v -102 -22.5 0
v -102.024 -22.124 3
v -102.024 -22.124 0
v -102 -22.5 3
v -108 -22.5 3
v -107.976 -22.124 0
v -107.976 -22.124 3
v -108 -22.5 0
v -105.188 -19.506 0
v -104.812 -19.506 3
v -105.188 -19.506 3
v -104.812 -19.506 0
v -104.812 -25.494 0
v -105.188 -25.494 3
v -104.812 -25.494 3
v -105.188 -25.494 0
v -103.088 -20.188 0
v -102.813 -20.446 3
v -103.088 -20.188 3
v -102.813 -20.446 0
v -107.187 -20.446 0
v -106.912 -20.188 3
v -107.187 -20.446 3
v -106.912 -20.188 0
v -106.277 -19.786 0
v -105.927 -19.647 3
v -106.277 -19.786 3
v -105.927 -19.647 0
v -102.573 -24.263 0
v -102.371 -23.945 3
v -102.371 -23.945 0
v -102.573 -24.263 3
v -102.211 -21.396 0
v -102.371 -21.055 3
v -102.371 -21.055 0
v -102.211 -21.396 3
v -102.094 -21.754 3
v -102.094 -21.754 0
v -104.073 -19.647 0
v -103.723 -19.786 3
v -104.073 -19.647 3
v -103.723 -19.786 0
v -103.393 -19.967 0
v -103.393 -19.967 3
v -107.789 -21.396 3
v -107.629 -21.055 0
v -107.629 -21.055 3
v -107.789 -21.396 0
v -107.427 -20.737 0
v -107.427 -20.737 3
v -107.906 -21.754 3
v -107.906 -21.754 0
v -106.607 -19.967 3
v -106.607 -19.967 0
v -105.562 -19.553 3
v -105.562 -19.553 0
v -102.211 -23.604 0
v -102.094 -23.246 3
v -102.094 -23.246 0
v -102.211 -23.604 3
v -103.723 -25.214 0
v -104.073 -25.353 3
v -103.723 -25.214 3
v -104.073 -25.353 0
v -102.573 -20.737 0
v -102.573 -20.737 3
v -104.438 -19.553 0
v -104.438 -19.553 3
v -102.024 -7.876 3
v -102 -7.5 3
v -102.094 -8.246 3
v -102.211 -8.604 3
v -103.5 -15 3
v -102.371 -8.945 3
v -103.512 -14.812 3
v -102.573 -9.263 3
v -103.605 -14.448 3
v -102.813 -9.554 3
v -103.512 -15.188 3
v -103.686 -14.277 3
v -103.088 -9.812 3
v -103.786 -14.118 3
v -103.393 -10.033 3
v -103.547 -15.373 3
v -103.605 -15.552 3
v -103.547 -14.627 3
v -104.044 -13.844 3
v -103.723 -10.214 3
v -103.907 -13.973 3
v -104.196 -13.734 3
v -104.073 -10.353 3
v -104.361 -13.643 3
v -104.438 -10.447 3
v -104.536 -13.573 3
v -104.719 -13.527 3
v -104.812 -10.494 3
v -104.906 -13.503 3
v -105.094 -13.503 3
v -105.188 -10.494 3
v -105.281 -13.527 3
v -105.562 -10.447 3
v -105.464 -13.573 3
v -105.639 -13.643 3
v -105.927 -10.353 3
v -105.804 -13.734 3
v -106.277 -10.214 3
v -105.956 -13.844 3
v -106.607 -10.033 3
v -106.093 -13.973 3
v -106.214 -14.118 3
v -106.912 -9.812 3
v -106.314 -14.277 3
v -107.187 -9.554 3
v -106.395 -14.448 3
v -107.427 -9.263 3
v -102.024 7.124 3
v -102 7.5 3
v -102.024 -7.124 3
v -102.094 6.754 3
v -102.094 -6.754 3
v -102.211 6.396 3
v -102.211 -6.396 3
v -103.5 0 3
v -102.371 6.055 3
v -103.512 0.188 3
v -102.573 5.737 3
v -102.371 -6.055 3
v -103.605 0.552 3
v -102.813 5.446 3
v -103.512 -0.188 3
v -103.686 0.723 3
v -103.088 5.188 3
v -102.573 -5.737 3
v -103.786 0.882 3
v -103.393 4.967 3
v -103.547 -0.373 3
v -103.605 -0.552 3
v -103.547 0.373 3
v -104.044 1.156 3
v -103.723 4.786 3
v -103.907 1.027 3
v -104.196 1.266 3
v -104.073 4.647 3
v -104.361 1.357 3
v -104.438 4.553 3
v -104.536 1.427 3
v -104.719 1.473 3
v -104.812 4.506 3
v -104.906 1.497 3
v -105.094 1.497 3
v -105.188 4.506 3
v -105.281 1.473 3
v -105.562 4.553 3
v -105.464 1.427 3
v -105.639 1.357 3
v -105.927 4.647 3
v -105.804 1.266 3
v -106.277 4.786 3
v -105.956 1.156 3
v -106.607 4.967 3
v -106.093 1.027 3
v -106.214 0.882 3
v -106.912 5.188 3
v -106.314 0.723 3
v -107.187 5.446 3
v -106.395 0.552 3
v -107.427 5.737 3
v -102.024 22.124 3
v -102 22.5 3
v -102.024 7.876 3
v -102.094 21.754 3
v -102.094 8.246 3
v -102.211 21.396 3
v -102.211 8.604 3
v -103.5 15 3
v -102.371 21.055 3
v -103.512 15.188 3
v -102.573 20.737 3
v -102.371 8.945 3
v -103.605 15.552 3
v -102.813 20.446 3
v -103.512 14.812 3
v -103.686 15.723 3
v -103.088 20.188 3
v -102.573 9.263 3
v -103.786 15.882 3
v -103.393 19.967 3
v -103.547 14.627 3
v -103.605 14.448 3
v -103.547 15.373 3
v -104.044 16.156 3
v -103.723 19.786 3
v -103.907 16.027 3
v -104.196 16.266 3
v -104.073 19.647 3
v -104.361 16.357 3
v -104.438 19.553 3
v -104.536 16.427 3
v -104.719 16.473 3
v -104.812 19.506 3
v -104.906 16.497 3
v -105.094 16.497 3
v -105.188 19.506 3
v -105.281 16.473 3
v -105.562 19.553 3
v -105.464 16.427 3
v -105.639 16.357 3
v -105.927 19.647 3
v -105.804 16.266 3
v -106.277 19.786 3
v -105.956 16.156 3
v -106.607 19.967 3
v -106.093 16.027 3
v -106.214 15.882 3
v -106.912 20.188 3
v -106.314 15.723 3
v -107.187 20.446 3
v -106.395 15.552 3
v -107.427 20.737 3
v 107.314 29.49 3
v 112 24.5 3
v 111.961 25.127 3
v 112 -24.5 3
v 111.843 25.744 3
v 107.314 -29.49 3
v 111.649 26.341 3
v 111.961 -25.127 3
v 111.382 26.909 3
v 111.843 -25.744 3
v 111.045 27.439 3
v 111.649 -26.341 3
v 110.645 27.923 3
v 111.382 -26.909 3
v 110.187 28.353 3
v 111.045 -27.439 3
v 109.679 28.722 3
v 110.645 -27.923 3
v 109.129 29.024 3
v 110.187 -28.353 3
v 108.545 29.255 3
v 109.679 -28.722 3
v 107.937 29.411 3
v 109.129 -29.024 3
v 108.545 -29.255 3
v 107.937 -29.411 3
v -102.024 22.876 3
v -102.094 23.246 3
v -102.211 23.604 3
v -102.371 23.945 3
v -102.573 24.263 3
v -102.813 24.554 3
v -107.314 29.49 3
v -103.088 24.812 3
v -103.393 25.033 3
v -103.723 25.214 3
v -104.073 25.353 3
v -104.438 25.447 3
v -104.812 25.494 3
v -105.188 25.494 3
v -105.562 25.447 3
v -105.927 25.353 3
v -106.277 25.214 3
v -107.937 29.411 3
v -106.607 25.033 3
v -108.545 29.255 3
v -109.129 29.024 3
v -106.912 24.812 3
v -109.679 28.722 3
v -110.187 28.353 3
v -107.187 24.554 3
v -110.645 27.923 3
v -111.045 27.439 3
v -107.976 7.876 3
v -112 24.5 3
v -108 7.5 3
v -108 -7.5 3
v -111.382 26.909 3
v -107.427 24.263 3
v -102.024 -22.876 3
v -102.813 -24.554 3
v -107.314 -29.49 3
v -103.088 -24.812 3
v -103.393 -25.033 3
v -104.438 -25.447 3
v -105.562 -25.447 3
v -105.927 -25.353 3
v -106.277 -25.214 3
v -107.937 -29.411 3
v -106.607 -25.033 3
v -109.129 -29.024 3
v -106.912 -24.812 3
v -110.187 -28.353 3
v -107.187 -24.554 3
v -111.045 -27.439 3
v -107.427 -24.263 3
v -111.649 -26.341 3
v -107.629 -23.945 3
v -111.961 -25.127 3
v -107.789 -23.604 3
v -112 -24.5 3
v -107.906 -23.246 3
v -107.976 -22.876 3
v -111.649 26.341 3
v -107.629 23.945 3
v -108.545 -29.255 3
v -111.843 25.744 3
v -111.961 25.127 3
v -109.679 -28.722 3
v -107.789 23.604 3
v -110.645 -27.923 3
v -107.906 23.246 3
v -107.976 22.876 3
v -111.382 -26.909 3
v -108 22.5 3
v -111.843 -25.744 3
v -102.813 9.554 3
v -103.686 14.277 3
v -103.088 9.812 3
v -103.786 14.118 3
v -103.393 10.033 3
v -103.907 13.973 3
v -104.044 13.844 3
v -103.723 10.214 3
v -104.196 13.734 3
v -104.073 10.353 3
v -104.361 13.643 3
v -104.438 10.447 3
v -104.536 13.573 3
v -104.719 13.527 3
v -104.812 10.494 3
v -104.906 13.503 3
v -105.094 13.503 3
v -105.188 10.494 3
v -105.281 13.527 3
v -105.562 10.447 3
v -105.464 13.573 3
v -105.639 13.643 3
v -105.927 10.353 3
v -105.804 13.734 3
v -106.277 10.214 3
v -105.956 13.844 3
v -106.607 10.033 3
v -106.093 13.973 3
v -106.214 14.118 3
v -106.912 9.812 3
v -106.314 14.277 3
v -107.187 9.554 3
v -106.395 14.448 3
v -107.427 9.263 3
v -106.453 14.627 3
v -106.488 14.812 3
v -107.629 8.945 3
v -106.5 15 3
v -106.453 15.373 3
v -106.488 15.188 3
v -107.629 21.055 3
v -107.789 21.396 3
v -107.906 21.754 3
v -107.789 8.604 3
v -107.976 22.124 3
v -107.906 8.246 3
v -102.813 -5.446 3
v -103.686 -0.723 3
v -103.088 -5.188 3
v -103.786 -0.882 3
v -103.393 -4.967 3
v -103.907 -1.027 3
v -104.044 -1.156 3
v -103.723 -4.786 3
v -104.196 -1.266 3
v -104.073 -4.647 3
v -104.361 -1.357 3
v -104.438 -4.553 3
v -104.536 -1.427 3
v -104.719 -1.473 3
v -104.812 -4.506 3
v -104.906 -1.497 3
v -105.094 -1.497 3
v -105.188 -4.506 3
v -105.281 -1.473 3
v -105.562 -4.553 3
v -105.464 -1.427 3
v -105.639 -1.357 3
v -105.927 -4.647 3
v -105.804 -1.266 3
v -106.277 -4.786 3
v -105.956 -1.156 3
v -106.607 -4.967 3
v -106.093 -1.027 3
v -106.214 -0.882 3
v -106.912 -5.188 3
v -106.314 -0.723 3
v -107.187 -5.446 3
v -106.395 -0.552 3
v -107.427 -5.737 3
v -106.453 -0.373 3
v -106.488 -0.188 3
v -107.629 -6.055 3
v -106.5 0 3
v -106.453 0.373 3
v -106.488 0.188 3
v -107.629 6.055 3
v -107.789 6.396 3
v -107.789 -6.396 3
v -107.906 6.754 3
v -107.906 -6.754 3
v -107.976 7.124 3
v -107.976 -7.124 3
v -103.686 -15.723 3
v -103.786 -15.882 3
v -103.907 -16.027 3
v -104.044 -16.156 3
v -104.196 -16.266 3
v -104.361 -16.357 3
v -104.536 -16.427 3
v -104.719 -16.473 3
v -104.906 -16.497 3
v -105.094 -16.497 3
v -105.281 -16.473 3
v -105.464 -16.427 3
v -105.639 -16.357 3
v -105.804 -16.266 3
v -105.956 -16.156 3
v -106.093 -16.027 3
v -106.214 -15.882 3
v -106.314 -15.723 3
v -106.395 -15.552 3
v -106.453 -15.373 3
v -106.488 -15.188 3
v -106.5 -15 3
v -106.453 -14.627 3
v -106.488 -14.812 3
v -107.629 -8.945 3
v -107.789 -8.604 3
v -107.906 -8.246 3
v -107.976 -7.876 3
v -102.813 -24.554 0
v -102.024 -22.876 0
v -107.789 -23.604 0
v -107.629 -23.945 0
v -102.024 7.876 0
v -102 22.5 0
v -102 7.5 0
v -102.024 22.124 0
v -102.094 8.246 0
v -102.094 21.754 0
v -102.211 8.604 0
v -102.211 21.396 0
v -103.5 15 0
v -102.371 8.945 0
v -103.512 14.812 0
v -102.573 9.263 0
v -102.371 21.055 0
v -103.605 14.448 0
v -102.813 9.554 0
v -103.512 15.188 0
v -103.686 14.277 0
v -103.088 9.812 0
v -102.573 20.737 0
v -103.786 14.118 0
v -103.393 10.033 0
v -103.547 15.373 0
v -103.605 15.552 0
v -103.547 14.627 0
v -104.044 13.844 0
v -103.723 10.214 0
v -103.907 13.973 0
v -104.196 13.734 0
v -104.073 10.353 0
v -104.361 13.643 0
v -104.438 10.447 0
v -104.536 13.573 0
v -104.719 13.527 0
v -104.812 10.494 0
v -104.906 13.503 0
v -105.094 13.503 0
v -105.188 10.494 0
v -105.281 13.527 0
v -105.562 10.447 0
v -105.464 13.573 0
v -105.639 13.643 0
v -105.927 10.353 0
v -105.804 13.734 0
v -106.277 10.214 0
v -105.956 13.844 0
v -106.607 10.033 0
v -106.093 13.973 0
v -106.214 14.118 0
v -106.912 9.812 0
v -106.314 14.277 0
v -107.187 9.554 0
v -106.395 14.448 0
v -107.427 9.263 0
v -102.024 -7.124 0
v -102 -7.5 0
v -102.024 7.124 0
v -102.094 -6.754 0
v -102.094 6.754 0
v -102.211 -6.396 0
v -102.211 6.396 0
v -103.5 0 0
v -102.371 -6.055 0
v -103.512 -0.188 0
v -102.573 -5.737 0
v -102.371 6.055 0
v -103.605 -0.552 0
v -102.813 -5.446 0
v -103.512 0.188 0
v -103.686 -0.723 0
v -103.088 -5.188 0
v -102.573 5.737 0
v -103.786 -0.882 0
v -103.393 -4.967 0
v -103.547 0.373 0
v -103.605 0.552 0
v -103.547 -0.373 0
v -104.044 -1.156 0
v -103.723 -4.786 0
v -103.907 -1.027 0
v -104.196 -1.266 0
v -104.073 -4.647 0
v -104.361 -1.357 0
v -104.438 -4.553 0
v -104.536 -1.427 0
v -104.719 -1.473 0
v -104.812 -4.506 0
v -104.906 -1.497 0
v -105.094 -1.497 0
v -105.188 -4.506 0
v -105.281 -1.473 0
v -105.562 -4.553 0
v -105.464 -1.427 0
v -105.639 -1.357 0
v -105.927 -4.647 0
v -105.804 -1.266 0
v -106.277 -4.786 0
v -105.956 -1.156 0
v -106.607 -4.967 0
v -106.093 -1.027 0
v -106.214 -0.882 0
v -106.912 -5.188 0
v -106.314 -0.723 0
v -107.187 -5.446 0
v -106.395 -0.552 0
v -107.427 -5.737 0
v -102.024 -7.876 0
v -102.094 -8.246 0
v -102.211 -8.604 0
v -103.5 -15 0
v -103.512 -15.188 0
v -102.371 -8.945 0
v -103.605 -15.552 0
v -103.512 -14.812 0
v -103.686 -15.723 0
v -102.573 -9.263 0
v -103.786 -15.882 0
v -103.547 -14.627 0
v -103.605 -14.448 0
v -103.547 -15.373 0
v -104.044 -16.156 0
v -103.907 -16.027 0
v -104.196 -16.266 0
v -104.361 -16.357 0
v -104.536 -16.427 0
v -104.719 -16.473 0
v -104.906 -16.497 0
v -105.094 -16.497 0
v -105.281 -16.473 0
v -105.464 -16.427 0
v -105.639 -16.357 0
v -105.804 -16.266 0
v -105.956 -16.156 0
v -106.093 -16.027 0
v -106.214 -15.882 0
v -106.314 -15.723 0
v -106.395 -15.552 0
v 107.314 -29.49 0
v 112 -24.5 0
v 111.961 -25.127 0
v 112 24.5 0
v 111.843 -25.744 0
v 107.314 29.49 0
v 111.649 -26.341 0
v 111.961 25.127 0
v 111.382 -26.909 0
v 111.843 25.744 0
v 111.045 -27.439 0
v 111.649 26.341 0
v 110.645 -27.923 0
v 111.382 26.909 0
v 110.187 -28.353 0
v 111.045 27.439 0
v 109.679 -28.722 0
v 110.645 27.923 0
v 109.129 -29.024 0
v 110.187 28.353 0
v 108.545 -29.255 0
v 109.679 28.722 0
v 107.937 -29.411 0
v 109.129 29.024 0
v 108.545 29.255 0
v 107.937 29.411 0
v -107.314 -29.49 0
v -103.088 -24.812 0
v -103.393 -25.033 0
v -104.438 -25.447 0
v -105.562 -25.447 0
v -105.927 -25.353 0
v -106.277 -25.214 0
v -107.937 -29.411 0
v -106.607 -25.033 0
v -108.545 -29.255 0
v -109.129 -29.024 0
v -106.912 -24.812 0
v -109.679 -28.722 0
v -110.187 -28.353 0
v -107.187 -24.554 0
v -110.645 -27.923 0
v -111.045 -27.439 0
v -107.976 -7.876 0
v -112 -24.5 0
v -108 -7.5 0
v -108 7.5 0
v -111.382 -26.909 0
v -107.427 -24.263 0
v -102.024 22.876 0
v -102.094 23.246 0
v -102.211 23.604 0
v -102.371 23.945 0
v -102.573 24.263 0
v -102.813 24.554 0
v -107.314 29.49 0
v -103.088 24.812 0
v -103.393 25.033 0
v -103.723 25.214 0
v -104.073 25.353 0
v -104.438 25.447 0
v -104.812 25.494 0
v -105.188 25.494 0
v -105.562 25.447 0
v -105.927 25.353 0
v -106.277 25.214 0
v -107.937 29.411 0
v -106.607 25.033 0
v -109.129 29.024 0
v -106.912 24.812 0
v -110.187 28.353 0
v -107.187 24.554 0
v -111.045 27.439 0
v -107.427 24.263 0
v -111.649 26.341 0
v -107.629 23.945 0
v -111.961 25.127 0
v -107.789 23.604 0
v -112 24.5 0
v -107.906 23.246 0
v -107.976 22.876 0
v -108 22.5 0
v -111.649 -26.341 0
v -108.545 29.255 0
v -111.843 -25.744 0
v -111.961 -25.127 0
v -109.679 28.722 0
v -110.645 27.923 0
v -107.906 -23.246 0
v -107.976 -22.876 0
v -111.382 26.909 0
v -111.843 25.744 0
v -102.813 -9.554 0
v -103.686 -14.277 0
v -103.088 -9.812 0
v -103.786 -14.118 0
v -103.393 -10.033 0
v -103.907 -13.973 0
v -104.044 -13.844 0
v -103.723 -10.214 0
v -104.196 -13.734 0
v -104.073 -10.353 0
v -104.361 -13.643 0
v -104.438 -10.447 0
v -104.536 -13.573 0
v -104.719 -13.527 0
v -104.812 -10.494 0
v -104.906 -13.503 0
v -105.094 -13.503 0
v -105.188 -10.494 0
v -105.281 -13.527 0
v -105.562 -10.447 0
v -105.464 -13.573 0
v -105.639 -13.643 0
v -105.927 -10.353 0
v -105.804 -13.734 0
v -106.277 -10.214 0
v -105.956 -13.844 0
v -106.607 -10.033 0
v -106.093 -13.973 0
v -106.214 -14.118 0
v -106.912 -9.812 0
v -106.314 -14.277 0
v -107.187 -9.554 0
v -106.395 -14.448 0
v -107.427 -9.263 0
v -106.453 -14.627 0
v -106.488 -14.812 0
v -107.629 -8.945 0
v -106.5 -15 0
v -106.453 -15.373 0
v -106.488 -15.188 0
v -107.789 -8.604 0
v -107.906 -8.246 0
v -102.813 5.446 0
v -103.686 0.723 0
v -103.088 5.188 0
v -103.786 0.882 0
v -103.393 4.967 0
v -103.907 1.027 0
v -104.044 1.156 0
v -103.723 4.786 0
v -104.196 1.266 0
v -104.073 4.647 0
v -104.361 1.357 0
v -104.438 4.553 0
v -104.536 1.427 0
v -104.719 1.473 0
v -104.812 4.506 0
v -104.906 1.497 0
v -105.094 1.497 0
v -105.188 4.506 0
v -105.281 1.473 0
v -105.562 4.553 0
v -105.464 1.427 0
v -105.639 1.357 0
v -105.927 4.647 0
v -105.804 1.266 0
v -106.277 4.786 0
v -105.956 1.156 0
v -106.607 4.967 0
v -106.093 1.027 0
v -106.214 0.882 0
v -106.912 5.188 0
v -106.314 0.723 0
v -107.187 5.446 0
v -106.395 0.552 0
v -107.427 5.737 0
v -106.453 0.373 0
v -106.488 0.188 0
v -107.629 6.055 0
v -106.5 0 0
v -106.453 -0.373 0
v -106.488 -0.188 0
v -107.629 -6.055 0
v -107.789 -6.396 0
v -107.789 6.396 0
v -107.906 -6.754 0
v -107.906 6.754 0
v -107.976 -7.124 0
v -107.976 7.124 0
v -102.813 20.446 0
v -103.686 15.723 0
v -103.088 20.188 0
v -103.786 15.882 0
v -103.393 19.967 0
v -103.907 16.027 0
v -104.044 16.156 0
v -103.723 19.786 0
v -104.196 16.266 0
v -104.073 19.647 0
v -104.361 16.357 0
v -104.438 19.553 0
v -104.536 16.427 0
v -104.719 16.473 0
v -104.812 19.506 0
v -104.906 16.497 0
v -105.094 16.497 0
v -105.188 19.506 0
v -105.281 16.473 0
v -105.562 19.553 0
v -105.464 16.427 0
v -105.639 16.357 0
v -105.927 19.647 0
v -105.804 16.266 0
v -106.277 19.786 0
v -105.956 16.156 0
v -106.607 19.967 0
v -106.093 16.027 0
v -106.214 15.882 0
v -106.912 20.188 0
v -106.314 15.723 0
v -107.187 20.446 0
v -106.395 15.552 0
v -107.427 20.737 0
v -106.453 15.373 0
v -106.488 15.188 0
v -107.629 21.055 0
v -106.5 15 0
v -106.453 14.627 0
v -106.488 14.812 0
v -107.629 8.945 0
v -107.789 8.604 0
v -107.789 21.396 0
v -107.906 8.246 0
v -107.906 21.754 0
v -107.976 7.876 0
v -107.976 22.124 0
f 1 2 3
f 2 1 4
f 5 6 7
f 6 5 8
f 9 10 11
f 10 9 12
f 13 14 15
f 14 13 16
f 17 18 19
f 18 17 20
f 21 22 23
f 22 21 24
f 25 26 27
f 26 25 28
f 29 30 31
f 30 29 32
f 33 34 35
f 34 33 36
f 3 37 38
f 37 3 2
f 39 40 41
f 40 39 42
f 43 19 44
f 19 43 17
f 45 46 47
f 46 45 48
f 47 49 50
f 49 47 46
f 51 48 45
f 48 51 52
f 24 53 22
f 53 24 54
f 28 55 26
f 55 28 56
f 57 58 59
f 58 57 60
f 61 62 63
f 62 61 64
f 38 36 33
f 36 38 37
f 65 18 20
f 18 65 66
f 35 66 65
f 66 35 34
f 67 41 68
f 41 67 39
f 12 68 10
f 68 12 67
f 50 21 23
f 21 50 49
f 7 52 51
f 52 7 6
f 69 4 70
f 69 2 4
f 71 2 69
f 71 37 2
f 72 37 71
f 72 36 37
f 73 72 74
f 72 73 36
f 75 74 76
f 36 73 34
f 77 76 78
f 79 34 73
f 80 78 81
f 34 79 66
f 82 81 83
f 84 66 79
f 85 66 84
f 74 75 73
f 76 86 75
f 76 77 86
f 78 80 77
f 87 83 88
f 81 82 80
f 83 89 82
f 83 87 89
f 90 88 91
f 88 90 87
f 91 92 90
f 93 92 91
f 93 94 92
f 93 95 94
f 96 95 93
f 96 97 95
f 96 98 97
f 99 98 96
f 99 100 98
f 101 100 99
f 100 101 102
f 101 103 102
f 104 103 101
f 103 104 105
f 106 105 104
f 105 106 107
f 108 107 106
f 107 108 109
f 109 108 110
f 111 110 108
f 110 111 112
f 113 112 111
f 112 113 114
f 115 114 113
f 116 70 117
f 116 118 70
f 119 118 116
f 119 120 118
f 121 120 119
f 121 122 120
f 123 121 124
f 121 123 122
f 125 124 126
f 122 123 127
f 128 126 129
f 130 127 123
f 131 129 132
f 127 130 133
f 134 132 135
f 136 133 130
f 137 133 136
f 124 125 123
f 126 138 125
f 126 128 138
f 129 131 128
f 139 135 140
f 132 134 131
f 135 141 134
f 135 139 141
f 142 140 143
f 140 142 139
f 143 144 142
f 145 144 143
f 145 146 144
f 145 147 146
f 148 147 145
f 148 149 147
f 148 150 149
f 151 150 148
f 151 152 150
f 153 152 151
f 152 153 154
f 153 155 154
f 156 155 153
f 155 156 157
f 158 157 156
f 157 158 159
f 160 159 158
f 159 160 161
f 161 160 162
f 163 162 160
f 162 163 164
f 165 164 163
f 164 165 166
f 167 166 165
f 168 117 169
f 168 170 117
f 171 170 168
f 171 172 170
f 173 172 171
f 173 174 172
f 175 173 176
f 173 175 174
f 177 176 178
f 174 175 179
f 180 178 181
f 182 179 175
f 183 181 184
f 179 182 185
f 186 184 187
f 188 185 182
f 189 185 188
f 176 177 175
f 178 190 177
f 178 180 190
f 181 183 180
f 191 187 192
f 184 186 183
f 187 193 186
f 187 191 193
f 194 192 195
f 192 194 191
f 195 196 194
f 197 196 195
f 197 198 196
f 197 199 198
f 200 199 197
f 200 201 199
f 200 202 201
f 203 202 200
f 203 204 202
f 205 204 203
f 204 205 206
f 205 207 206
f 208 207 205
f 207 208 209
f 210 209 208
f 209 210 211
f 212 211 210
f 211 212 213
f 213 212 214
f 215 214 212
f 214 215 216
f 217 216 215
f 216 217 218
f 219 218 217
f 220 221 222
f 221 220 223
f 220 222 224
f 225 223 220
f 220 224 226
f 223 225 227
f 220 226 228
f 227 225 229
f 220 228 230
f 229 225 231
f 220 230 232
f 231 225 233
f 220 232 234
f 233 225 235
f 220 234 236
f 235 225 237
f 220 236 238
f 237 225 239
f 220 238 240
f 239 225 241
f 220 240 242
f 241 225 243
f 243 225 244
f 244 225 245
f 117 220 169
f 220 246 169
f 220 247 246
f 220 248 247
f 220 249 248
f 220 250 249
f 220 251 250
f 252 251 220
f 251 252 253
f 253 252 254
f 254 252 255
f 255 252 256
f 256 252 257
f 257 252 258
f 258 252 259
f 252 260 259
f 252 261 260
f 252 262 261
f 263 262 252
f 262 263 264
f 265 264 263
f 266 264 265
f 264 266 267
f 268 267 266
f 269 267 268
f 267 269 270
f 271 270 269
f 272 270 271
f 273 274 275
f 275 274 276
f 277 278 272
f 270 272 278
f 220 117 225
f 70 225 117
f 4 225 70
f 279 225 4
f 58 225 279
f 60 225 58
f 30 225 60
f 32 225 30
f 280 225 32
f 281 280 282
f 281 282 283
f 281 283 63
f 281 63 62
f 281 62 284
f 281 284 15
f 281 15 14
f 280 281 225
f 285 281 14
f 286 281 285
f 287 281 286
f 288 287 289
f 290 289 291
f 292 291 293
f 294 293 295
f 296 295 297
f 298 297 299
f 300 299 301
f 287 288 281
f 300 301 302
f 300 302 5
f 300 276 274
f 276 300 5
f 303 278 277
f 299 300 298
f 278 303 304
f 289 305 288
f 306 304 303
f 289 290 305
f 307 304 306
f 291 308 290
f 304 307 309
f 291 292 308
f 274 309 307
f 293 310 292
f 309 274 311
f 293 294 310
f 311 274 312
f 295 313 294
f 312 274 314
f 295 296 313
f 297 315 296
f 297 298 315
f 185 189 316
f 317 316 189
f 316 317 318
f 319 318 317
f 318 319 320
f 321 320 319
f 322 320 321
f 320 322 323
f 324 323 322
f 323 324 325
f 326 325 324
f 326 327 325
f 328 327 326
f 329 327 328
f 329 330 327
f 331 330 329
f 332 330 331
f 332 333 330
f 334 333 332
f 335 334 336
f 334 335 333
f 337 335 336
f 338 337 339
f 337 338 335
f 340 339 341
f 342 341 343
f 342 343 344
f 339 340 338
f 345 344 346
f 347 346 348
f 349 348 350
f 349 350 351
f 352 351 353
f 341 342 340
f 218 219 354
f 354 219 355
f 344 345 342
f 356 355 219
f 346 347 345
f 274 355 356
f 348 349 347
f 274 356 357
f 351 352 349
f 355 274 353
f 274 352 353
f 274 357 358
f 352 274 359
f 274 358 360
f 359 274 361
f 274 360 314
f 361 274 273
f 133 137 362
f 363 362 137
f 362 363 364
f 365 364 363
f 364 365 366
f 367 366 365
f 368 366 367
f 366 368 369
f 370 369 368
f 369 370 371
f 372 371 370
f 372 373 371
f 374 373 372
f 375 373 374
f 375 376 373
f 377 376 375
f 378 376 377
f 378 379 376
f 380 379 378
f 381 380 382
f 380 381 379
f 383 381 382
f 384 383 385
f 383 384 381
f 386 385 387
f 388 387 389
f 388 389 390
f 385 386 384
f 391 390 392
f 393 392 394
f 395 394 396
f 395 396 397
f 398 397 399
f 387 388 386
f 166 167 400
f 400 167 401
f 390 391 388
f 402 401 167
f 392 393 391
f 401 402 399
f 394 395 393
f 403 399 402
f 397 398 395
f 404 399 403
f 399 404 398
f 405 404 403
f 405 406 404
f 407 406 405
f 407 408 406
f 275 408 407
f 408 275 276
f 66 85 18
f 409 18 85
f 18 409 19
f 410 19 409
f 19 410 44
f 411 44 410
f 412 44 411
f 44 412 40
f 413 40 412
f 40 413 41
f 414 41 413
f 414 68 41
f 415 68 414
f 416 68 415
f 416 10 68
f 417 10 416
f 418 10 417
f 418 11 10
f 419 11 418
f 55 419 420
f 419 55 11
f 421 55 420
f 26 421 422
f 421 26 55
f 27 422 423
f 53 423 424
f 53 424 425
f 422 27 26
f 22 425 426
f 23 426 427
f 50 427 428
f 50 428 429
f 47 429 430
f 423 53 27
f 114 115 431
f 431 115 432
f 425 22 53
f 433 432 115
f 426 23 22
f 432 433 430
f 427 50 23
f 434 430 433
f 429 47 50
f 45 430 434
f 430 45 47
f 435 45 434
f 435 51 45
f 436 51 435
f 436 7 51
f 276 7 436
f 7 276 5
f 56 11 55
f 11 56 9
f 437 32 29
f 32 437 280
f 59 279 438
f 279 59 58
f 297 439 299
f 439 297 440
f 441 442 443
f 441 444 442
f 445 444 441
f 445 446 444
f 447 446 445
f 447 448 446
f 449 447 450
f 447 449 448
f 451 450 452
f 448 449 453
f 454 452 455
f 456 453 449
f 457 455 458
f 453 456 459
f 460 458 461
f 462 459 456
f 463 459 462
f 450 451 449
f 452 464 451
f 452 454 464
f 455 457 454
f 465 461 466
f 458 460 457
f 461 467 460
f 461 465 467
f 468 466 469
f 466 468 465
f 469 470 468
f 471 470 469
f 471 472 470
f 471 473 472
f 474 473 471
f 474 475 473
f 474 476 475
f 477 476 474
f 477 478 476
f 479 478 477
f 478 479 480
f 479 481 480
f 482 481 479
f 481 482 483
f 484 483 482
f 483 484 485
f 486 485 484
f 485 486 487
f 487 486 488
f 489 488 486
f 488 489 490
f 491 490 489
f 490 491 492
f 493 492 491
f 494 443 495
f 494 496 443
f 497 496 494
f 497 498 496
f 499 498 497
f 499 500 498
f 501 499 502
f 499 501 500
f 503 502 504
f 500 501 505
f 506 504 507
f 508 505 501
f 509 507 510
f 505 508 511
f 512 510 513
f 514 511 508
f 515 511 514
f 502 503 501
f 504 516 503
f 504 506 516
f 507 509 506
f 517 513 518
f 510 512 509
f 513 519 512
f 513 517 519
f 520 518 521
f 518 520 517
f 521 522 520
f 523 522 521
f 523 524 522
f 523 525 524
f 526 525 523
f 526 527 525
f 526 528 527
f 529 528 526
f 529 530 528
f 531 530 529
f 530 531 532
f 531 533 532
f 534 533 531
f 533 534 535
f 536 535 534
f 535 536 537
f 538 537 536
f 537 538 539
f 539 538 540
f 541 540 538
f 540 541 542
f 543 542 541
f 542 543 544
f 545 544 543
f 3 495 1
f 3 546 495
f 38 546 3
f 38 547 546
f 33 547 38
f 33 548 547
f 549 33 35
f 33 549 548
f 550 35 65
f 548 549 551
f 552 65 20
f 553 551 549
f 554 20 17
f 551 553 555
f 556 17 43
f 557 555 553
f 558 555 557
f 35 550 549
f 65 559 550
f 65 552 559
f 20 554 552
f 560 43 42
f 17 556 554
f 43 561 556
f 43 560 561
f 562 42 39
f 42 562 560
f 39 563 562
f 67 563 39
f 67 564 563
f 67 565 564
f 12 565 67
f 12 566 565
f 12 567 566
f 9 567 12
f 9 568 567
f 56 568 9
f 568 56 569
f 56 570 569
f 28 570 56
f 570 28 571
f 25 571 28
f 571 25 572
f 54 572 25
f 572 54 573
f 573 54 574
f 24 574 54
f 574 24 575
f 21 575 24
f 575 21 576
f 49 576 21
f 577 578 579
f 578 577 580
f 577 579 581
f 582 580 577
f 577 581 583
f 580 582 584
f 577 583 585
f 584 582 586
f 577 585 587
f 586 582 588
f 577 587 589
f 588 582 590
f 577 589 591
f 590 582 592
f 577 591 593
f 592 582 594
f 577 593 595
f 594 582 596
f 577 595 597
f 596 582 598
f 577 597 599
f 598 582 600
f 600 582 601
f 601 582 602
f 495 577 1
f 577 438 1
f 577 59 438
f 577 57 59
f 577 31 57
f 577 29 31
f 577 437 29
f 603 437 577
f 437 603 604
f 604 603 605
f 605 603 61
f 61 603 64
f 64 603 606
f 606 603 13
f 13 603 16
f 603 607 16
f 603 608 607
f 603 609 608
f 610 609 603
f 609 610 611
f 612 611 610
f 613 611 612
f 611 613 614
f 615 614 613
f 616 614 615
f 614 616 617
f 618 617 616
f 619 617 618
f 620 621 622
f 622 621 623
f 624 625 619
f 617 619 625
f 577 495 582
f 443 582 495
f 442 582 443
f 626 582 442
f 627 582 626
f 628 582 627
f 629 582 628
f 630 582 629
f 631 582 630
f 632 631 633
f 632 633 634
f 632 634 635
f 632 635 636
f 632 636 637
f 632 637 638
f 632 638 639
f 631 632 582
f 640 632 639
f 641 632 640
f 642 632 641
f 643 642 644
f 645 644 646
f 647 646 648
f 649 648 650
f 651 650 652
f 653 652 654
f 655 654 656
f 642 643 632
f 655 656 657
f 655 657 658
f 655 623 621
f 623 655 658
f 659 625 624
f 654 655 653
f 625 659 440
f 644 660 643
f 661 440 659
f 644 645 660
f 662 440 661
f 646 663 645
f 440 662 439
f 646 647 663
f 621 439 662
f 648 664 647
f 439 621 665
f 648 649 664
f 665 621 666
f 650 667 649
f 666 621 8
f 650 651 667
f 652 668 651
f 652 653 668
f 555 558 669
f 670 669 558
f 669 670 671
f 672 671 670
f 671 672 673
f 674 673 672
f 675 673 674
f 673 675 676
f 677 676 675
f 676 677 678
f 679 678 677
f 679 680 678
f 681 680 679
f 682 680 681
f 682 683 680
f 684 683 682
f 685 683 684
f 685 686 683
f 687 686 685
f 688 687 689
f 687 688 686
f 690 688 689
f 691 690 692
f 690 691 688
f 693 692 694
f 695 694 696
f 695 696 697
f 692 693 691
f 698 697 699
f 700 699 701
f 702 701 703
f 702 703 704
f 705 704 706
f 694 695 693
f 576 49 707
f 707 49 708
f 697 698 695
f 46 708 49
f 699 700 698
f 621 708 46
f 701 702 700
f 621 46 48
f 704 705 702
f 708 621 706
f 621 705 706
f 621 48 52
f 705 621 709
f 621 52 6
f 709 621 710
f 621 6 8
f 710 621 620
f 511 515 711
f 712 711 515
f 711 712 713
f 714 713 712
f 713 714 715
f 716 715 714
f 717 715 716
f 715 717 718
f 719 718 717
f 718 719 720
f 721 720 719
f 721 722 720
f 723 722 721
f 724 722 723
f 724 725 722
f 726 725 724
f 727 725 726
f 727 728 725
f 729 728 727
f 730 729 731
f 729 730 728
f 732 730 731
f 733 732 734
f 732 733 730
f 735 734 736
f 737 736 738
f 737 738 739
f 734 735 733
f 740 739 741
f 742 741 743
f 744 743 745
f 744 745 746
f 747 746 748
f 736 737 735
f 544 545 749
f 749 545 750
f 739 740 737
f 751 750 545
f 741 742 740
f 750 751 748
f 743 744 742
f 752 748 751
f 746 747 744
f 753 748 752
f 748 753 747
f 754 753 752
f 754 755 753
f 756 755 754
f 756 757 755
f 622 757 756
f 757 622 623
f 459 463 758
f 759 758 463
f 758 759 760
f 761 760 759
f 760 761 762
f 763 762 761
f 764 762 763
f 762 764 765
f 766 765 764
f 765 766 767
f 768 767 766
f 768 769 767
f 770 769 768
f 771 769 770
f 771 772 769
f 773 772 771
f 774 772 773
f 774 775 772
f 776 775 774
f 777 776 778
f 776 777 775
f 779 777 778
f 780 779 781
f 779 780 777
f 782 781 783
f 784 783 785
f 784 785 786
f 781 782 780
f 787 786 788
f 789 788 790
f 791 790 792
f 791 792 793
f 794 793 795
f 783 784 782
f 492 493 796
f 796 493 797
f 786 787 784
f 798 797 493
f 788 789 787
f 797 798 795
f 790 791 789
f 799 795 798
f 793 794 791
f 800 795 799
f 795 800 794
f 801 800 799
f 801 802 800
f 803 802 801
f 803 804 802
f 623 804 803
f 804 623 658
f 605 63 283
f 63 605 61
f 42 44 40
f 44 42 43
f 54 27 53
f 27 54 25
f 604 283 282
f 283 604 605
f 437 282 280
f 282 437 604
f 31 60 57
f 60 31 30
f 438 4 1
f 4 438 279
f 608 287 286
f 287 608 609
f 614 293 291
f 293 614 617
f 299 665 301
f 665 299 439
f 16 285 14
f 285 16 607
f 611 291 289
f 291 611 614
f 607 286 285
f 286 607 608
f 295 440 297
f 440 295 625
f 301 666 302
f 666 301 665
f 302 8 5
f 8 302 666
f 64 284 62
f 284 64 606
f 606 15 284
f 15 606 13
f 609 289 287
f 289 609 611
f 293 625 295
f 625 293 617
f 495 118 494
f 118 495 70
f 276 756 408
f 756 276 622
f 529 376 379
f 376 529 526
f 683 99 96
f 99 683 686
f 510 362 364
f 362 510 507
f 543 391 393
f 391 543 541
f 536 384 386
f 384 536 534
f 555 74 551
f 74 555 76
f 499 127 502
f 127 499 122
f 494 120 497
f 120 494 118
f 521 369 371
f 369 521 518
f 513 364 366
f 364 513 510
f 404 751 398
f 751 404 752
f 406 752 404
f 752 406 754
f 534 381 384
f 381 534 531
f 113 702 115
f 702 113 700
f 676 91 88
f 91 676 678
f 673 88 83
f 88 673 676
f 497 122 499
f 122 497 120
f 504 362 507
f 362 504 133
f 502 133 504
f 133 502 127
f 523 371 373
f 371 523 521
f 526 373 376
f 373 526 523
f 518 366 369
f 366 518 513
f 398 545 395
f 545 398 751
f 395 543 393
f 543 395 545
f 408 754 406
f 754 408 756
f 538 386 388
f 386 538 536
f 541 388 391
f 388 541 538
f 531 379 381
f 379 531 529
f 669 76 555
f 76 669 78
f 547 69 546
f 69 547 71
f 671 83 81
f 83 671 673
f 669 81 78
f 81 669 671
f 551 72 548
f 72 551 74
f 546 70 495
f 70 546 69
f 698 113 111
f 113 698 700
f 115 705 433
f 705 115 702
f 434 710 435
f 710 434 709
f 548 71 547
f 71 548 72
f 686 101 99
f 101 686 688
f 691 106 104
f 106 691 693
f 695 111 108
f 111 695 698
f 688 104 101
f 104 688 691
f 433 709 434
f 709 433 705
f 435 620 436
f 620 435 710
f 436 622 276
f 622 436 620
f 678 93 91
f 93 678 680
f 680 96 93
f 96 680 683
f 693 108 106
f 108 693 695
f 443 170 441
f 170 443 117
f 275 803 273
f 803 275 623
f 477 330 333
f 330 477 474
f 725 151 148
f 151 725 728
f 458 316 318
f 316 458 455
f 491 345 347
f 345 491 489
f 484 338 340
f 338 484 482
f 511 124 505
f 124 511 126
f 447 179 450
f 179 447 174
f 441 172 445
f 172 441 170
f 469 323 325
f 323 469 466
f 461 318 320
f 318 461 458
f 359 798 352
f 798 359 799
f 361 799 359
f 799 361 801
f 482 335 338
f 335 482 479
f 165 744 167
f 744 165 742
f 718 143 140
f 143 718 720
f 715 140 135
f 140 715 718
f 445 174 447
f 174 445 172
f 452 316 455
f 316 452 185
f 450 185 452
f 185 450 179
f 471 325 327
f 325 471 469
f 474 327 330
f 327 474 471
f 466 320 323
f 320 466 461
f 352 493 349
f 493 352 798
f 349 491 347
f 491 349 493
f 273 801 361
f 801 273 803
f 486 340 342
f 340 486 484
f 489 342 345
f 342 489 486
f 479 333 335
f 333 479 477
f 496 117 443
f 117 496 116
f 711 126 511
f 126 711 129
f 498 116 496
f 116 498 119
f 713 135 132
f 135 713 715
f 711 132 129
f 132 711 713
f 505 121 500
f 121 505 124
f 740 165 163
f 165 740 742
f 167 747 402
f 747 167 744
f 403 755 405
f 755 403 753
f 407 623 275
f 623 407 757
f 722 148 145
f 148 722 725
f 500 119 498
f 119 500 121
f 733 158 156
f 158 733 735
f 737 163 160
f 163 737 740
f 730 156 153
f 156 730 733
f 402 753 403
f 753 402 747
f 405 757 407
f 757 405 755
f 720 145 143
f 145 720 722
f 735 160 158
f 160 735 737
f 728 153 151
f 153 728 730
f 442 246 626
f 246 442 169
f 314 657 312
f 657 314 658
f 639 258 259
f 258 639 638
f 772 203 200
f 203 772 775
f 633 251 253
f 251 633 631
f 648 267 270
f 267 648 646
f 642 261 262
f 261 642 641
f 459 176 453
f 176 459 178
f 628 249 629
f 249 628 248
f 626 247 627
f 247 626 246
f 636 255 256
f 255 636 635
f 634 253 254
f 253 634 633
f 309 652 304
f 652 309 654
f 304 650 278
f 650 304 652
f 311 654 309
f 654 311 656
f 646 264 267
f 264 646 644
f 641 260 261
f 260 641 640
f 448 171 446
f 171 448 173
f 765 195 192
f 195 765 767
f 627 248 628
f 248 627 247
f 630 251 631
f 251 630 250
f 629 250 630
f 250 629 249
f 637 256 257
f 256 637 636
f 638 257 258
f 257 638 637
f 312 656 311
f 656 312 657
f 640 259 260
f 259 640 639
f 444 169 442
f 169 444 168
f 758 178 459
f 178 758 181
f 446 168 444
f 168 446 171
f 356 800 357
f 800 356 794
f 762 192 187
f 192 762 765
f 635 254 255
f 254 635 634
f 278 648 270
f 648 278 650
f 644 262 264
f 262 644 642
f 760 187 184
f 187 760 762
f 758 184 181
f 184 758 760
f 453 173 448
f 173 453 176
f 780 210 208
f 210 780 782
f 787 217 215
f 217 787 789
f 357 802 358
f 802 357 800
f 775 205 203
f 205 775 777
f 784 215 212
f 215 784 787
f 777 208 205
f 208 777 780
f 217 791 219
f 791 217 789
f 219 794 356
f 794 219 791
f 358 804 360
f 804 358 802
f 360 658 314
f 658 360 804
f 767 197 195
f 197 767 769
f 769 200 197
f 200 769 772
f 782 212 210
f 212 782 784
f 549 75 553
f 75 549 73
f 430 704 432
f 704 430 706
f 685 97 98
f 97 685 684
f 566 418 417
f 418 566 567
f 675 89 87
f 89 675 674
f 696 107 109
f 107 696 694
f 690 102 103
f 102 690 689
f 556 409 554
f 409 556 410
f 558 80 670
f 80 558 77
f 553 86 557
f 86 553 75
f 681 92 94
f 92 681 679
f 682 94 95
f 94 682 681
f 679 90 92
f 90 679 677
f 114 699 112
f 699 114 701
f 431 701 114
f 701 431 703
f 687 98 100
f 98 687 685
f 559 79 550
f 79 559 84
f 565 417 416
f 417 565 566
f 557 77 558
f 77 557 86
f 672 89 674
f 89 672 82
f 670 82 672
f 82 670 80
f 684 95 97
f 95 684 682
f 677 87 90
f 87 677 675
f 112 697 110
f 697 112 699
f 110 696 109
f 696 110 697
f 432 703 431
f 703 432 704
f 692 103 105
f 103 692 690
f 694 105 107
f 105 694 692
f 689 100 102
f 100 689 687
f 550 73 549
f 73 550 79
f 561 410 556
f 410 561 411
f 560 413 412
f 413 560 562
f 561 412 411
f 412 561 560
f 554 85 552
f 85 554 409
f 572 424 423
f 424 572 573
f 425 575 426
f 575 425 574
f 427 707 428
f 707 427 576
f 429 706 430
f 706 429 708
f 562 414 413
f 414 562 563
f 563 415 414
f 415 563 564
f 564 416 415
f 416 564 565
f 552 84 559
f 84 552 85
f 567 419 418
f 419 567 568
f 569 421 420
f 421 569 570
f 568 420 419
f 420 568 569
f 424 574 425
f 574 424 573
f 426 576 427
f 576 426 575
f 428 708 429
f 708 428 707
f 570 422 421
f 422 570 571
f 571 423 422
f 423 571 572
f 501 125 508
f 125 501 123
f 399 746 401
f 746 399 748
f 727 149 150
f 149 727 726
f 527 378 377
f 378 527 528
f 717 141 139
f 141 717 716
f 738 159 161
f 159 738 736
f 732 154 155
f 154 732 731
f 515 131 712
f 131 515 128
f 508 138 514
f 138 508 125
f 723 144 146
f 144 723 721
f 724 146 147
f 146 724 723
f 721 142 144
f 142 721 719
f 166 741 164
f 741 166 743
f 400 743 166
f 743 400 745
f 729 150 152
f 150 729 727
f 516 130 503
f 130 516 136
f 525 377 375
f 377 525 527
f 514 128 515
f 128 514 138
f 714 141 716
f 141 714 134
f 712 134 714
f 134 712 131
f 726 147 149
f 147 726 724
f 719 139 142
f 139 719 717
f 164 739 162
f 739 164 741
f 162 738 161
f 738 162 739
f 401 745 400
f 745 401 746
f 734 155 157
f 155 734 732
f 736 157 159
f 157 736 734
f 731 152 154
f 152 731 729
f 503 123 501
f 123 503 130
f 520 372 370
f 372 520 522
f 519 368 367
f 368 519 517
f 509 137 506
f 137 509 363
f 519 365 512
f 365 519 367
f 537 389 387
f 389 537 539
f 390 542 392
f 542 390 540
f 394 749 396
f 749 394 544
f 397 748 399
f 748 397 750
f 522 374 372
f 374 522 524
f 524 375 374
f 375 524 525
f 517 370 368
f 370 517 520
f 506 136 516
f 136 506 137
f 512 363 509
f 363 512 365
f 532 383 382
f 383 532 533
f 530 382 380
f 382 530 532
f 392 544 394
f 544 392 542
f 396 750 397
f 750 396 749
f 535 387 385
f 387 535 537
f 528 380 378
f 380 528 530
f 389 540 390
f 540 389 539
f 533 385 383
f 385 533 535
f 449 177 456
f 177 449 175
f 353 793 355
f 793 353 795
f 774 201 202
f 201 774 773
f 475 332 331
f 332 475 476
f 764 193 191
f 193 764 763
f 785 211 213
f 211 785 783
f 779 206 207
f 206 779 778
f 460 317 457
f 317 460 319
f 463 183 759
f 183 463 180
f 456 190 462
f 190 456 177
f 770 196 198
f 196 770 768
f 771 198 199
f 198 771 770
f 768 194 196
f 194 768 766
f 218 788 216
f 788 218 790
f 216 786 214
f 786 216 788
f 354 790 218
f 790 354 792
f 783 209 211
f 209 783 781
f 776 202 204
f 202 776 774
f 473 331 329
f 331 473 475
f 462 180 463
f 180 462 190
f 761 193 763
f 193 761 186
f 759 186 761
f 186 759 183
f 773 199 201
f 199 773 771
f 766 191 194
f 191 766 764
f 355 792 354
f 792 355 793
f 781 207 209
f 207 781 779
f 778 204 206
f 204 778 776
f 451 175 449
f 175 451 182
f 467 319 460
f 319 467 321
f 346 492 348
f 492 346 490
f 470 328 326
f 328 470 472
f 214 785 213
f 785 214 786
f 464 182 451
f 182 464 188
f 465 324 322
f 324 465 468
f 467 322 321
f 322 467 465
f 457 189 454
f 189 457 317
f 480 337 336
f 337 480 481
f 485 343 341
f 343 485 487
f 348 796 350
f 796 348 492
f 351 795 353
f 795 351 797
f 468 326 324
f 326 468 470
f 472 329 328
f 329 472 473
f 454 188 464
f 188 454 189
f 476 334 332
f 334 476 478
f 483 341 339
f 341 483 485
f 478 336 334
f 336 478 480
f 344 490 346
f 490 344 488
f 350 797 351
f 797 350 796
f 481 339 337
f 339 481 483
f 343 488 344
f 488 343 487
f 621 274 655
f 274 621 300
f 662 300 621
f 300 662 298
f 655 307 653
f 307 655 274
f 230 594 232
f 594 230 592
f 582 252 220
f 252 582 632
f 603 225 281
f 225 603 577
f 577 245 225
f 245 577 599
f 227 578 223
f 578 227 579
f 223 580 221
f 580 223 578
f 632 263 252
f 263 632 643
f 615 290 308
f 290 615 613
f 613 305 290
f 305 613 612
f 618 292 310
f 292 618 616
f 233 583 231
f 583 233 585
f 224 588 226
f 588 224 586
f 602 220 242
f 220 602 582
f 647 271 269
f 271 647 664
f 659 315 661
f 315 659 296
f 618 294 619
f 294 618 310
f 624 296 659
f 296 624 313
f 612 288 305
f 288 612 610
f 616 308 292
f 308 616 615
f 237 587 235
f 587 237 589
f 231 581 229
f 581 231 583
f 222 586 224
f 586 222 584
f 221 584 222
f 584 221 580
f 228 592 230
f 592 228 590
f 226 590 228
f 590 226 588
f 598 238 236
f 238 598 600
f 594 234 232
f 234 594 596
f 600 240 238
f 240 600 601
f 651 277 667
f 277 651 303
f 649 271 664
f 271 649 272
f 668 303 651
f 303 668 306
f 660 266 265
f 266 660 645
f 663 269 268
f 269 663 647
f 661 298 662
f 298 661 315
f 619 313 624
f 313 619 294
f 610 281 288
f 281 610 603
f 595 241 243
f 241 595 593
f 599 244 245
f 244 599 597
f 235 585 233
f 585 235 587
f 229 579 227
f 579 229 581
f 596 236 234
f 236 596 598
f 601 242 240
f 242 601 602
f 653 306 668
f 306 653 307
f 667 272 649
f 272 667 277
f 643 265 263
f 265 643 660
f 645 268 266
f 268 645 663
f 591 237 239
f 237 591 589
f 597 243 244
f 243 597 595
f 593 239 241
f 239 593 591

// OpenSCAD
$fn = 50;


difference() {
	union() {
		hull() {
			translate(v = [-107.0000000000, 24.5000000000, 0]) {
				cylinder(h = 3, r = 5);
			}
			translate(v = [107.0000000000, 24.5000000000, 0]) {
				cylinder(h = 3, r = 5);
			}
			translate(v = [-107.0000000000, -24.5000000000, 0]) {
				cylinder(h = 3, r = 5);
			}
			translate(v = [107.0000000000, -24.5000000000, 0]) {
				cylinder(h = 3, r = 5);
			}
		}
	}
	union() {
		translate(v = [-105.0000000000, -22.5000000000, 0]) {
			cylinder(h = 3, r = 3.0000000000);
		}
		translate(v = [-105.0000000000, -7.5000000000, 0]) {
			cylinder(h = 3, r = 3.0000000000);
		}
		translate(v = [-105.0000000000, 7.5000000000, 0]) {
			cylinder(h = 3, r = 3.0000000000);
		}
		translate(v = [-105.0000000000, 22.5000000000, 0]) {
			cylinder(h = 3, r = 3.0000000000);
		}
		translate(v = [-105.0000000000, -22.5000000000, 0]) {
			cylinder(h = 3, r = 1.5000000000);
		}
		translate(v = [-105.0000000000, -15.0000000000, 0]) {
			cylinder(h = 3, r = 1.5000000000);
		}
		translate(v = [-105.0000000000, -7.5000000000, 0]) {
			cylinder(h = 3, r = 1.5000000000);
		}
		translate(v = [-105.0000000000, 0.0000000000, 0]) {
			cylinder(h = 3, r = 1.5000000000);
		}
		translate(v = [-105.0000000000, 7.5000000000, 0]) {
			cylinder(h = 3, r = 1.5000000000);
		}
		translate(v = [-105.0000000000, 15.0000000000, 0]) {
			cylinder(h = 3, r = 1.5000000000);
		}
		translate(v = [-105.0000000000, 22.5000000000, 0]) {
			cylinder(h = 3, r = 1.5000000000);
		}
		translate(v = [-105.0000000000, -22.5000000000, 0]) {
			cylinder(h = 3, r = 1.5000000000);
		}
		translate(v = [-105.0000000000, -15.0000000000, 0]) {
			cylinder(h = 3, r = 1.5000000000);
		}
		translate(v = [-105.0000000000, -7.5000000000, 0]) {
			cylinder(h = 3, r = 1.5000000000);
		}
		translate(v = [-105.0000000000, 0.0000000000, 0]) {
			cylinder(h = 3, r = 1.5000000000);
		}
		translate(v = [-105.0000000000, 7.5000000000, 0]) {
			cylinder(h = 3, r = 1.5000000000);
		}
		translate(v = [-105.0000000000, 15.0000000000, 0]) {
			cylinder(h = 3, r = 1.5000000000);
		}
		translate(v = [-105.0000000000, 22.5000000000, 0]) {
			cylinder(h = 3, r = 1.5000000000);
		}
		translate(v = [-105.0000000000, -22.5000000000, 0]) {
			cylinder(h = 3, r = 1.5000000000);
		}
		translate(v = [-105.0000000000, -15.0000000000, 0]) {
			cylinder(h = 3, r = 1.5000000000);
		}
		translate(v = [-105.0000000000, -7.5000000000, 0]) {
			cylinder(h = 3, r = 1.5000000000);
		}
		translate(v = [-105.0000000000, 0.0000000000, 0]) {
			cylinder(h = 3, r = 1.5000000000);
		}
		translate(v = [-105.0000000000, 7.5000000000, 0]) {
			cylinder(h = 3, r = 1.5000000000);
		}
		translate(v = [-105.0000000000, 15.0000000000, 0]) {
			cylinder(h = 3, r = 1.5000000000);
		}
		translate(v = [-105.0000000000, 22.5000000000, 0]) {
			cylinder(h = 3, r = 1.5000000000);
		}
	}
}
